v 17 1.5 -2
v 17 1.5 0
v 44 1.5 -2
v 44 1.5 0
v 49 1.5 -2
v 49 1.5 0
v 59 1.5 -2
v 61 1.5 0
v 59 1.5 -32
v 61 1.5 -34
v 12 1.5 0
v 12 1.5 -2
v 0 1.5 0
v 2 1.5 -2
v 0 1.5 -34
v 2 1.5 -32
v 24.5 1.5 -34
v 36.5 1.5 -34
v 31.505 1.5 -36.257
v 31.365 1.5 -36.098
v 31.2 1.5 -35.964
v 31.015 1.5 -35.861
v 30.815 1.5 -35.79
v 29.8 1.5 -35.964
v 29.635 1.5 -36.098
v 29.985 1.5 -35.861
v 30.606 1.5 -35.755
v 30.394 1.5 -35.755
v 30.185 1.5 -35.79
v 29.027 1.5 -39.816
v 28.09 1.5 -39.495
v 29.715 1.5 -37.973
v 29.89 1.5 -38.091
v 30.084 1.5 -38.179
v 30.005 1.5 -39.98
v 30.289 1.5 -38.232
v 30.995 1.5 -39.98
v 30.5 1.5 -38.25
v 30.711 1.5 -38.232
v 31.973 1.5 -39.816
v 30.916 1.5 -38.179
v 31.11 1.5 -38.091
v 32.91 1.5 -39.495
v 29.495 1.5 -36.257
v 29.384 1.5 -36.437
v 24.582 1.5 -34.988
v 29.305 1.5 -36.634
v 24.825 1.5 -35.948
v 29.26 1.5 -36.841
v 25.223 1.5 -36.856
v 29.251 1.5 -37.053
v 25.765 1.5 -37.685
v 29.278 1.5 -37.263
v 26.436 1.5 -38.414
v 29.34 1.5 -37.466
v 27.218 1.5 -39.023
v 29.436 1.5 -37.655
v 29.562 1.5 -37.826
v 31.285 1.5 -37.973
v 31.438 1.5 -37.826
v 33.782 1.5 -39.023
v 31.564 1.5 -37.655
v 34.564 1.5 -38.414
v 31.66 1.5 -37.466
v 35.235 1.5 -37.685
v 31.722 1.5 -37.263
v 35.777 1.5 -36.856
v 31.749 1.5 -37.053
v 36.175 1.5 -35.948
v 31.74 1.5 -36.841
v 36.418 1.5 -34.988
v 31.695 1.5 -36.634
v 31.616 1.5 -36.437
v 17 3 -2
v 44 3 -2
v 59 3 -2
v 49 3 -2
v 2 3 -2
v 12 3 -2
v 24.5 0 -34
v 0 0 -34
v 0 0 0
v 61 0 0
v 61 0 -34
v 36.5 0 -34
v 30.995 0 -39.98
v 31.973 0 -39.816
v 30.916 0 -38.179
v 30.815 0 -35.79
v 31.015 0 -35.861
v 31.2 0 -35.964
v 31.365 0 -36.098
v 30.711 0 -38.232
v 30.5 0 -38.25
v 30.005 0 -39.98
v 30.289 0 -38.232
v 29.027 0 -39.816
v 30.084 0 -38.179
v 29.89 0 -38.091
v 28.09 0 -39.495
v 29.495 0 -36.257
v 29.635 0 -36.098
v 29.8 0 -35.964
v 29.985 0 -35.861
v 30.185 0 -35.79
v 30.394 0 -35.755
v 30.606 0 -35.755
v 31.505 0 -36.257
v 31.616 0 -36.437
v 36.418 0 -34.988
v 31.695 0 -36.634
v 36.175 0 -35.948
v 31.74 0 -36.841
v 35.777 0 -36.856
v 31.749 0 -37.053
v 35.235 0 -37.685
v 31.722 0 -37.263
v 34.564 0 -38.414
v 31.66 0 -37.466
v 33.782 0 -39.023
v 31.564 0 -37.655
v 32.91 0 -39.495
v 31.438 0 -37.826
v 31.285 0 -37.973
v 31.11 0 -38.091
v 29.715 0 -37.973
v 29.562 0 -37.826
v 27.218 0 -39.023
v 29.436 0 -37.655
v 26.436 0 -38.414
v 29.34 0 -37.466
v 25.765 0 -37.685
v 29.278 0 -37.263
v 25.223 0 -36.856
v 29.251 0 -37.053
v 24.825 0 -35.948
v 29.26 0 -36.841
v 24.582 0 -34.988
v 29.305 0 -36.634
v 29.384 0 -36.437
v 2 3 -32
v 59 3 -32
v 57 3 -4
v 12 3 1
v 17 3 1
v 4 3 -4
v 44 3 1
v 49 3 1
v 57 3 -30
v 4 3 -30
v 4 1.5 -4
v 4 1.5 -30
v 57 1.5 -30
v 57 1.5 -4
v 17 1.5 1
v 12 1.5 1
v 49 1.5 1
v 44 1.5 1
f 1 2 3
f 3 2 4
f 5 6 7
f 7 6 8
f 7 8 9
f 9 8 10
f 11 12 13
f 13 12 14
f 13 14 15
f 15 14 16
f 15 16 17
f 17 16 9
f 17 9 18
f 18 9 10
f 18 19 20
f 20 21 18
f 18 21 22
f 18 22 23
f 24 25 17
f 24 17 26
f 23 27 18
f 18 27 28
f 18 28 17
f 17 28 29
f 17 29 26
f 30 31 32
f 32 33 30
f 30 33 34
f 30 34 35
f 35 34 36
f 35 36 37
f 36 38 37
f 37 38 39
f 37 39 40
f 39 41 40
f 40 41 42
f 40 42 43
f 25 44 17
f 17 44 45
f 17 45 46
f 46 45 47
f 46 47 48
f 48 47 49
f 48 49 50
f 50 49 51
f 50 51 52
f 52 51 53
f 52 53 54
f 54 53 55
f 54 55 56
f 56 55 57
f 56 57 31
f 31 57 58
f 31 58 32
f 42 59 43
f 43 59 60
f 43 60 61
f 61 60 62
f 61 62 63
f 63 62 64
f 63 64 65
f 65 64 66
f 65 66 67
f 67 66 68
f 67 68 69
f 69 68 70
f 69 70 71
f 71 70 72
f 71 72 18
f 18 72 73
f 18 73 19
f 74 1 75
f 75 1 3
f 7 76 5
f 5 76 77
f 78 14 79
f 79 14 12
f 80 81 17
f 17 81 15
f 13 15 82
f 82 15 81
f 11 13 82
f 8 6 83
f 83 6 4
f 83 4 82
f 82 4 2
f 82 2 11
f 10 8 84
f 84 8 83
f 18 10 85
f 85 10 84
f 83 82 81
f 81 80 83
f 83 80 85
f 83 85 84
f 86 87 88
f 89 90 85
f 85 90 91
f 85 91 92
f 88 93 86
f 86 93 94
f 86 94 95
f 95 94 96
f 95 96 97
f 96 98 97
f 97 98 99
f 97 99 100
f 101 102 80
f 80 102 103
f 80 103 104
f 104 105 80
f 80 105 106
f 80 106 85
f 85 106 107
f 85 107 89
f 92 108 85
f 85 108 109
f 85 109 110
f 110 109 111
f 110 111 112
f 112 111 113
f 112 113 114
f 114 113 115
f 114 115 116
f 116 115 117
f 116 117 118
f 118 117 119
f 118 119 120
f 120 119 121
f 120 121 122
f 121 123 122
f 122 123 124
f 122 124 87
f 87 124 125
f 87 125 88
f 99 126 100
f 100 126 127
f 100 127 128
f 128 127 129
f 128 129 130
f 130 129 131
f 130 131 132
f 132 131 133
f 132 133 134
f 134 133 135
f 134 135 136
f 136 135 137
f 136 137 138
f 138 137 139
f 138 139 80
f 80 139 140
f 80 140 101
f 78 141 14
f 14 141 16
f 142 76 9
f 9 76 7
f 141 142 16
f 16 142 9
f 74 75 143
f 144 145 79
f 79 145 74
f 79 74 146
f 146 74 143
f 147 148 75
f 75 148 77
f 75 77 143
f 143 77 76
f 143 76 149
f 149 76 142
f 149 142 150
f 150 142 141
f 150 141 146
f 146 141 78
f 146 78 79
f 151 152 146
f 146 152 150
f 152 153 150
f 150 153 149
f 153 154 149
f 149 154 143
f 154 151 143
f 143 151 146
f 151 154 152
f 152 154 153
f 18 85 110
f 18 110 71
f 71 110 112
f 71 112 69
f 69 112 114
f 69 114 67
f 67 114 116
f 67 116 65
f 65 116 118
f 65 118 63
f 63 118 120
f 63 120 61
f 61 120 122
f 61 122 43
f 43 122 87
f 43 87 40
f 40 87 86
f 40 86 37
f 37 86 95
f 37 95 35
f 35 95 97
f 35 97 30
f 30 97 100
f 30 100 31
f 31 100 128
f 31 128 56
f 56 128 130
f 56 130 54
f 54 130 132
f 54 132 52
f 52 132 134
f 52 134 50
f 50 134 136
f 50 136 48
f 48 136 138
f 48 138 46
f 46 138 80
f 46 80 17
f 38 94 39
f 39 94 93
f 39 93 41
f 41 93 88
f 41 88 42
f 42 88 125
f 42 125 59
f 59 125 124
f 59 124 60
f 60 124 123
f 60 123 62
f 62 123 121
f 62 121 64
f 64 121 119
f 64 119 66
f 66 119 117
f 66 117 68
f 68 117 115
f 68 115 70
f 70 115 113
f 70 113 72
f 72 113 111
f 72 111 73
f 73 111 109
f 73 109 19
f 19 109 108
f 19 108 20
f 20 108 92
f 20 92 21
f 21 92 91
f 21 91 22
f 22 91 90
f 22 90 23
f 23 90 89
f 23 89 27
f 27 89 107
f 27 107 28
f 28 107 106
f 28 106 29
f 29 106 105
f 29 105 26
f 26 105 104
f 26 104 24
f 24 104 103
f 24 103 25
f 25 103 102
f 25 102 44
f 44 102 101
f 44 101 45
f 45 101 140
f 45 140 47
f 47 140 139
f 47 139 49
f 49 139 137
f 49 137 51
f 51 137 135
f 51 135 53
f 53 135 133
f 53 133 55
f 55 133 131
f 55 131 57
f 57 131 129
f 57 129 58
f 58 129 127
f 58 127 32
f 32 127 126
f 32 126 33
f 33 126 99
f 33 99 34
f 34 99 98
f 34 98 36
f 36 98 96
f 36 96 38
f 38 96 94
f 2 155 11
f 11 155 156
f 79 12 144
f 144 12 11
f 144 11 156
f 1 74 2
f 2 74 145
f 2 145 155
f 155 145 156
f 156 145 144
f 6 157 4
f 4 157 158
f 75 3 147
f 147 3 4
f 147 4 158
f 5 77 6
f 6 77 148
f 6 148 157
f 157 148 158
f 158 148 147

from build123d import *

# Parameters (mm, degrees)
SKETCH1_W             = 61
SKETCH1_H             = 34
BOSS_EXTRUDE1_DEPTH   = 1.5
SKETCH2_W             = 57
SKETCH2_H             = 30
BOSS_EXTRUDE2_DEPTH   = 1.5
SKETCH3_W             = 53
SKETCH3_H             = 26
CUT_EXTRUDE1_DEPTH    = 1.5
SKETCH4_R             = 6
BOSS_EXTRUDE3_DEPTH   = 1.5
M3_TAPPED_HOLE2_D     = 2.5
M3_TAPPED_HOLE2_DEPTH = 7.5
M3_TAPPED_HOLE2_TIP   = 0.751075774
SKETCH9_W             = 5
SKETCH9_H             = 1.5
BOSS_EXTRUDE4_DEPTH   = 3


with BuildPart() as part:
    # Sketch1 → Boss-Extrude1 (new body)
    with BuildSketch(Plane(origin=(0, 0, 0), x_dir=(1, 0, 0), z_dir=(0, 1, 0))):
        with Locations((30.5, 17)):
            Rectangle(SKETCH1_W, SKETCH1_H)
    extrude(amount=BOSS_EXTRUDE1_DEPTH)

    # Sketch2 → Boss-Extrude2 (add)
    with BuildSketch(Plane(origin=(0, 1.5, 0), x_dir=(1, 0, 0), z_dir=(0, 1, 0))):
        with Locations((30.5, 17)):
            Rectangle(SKETCH2_W, SKETCH2_H)
    extrude(amount=BOSS_EXTRUDE2_DEPTH)

    # Sketch3 → Cut-Extrude1 (cut)
    with BuildSketch(Plane(origin=(0, 3, 0), x_dir=(1, 0, 0), z_dir=(0, 1, 0))):
        with Locations((30.5, 17)):
            Rectangle(SKETCH3_W, SKETCH3_H)
    extrude(amount=-CUT_EXTRUDE1_DEPTH, mode=Mode.SUBTRACT)

    # Sketch4 → Boss-Extrude3 (add)
    with BuildSketch(Plane(origin=(0, 0, 0), x_dir=(-1, 0, 0), z_dir=(0, -1, 0))):
        with Locations((-30.5, 34)):
            Circle(SKETCH4_R)
    extrude(amount=-BOSS_EXTRUDE3_DEPTH)

    # M3 Tapped Hole2
    with Locations(Plane(origin=(30.5, 0, -37), x_dir=(0, 0, -1), z_dir=(0, -1, 0))):
        with Locations((0, 0)):
            Hole(M3_TAPPED_HOLE2_D / 2, depth=M3_TAPPED_HOLE2_DEPTH)
            with Locations((0, 0, -(M3_TAPPED_HOLE2_DEPTH + M3_TAPPED_HOLE2_TIP / 2))):  # 118° drill point
                Cone(0, M3_TAPPED_HOLE2_D / 2, M3_TAPPED_HOLE2_TIP, mode=Mode.SUBTRACT)

    # Sketch9 → Boss-Extrude4 (add)
    with BuildSketch(Plane.XY.offset(-2)):
        with Locations((14.5, 2.25)):
            Rectangle(SKETCH9_W, SKETCH9_H)
        with Locations((46.5, 2.25)):
            Rectangle(SKETCH9_W, SKETCH9_H)
    extrude(amount=BOSS_EXTRUDE4_DEPTH)


solid = part.part
